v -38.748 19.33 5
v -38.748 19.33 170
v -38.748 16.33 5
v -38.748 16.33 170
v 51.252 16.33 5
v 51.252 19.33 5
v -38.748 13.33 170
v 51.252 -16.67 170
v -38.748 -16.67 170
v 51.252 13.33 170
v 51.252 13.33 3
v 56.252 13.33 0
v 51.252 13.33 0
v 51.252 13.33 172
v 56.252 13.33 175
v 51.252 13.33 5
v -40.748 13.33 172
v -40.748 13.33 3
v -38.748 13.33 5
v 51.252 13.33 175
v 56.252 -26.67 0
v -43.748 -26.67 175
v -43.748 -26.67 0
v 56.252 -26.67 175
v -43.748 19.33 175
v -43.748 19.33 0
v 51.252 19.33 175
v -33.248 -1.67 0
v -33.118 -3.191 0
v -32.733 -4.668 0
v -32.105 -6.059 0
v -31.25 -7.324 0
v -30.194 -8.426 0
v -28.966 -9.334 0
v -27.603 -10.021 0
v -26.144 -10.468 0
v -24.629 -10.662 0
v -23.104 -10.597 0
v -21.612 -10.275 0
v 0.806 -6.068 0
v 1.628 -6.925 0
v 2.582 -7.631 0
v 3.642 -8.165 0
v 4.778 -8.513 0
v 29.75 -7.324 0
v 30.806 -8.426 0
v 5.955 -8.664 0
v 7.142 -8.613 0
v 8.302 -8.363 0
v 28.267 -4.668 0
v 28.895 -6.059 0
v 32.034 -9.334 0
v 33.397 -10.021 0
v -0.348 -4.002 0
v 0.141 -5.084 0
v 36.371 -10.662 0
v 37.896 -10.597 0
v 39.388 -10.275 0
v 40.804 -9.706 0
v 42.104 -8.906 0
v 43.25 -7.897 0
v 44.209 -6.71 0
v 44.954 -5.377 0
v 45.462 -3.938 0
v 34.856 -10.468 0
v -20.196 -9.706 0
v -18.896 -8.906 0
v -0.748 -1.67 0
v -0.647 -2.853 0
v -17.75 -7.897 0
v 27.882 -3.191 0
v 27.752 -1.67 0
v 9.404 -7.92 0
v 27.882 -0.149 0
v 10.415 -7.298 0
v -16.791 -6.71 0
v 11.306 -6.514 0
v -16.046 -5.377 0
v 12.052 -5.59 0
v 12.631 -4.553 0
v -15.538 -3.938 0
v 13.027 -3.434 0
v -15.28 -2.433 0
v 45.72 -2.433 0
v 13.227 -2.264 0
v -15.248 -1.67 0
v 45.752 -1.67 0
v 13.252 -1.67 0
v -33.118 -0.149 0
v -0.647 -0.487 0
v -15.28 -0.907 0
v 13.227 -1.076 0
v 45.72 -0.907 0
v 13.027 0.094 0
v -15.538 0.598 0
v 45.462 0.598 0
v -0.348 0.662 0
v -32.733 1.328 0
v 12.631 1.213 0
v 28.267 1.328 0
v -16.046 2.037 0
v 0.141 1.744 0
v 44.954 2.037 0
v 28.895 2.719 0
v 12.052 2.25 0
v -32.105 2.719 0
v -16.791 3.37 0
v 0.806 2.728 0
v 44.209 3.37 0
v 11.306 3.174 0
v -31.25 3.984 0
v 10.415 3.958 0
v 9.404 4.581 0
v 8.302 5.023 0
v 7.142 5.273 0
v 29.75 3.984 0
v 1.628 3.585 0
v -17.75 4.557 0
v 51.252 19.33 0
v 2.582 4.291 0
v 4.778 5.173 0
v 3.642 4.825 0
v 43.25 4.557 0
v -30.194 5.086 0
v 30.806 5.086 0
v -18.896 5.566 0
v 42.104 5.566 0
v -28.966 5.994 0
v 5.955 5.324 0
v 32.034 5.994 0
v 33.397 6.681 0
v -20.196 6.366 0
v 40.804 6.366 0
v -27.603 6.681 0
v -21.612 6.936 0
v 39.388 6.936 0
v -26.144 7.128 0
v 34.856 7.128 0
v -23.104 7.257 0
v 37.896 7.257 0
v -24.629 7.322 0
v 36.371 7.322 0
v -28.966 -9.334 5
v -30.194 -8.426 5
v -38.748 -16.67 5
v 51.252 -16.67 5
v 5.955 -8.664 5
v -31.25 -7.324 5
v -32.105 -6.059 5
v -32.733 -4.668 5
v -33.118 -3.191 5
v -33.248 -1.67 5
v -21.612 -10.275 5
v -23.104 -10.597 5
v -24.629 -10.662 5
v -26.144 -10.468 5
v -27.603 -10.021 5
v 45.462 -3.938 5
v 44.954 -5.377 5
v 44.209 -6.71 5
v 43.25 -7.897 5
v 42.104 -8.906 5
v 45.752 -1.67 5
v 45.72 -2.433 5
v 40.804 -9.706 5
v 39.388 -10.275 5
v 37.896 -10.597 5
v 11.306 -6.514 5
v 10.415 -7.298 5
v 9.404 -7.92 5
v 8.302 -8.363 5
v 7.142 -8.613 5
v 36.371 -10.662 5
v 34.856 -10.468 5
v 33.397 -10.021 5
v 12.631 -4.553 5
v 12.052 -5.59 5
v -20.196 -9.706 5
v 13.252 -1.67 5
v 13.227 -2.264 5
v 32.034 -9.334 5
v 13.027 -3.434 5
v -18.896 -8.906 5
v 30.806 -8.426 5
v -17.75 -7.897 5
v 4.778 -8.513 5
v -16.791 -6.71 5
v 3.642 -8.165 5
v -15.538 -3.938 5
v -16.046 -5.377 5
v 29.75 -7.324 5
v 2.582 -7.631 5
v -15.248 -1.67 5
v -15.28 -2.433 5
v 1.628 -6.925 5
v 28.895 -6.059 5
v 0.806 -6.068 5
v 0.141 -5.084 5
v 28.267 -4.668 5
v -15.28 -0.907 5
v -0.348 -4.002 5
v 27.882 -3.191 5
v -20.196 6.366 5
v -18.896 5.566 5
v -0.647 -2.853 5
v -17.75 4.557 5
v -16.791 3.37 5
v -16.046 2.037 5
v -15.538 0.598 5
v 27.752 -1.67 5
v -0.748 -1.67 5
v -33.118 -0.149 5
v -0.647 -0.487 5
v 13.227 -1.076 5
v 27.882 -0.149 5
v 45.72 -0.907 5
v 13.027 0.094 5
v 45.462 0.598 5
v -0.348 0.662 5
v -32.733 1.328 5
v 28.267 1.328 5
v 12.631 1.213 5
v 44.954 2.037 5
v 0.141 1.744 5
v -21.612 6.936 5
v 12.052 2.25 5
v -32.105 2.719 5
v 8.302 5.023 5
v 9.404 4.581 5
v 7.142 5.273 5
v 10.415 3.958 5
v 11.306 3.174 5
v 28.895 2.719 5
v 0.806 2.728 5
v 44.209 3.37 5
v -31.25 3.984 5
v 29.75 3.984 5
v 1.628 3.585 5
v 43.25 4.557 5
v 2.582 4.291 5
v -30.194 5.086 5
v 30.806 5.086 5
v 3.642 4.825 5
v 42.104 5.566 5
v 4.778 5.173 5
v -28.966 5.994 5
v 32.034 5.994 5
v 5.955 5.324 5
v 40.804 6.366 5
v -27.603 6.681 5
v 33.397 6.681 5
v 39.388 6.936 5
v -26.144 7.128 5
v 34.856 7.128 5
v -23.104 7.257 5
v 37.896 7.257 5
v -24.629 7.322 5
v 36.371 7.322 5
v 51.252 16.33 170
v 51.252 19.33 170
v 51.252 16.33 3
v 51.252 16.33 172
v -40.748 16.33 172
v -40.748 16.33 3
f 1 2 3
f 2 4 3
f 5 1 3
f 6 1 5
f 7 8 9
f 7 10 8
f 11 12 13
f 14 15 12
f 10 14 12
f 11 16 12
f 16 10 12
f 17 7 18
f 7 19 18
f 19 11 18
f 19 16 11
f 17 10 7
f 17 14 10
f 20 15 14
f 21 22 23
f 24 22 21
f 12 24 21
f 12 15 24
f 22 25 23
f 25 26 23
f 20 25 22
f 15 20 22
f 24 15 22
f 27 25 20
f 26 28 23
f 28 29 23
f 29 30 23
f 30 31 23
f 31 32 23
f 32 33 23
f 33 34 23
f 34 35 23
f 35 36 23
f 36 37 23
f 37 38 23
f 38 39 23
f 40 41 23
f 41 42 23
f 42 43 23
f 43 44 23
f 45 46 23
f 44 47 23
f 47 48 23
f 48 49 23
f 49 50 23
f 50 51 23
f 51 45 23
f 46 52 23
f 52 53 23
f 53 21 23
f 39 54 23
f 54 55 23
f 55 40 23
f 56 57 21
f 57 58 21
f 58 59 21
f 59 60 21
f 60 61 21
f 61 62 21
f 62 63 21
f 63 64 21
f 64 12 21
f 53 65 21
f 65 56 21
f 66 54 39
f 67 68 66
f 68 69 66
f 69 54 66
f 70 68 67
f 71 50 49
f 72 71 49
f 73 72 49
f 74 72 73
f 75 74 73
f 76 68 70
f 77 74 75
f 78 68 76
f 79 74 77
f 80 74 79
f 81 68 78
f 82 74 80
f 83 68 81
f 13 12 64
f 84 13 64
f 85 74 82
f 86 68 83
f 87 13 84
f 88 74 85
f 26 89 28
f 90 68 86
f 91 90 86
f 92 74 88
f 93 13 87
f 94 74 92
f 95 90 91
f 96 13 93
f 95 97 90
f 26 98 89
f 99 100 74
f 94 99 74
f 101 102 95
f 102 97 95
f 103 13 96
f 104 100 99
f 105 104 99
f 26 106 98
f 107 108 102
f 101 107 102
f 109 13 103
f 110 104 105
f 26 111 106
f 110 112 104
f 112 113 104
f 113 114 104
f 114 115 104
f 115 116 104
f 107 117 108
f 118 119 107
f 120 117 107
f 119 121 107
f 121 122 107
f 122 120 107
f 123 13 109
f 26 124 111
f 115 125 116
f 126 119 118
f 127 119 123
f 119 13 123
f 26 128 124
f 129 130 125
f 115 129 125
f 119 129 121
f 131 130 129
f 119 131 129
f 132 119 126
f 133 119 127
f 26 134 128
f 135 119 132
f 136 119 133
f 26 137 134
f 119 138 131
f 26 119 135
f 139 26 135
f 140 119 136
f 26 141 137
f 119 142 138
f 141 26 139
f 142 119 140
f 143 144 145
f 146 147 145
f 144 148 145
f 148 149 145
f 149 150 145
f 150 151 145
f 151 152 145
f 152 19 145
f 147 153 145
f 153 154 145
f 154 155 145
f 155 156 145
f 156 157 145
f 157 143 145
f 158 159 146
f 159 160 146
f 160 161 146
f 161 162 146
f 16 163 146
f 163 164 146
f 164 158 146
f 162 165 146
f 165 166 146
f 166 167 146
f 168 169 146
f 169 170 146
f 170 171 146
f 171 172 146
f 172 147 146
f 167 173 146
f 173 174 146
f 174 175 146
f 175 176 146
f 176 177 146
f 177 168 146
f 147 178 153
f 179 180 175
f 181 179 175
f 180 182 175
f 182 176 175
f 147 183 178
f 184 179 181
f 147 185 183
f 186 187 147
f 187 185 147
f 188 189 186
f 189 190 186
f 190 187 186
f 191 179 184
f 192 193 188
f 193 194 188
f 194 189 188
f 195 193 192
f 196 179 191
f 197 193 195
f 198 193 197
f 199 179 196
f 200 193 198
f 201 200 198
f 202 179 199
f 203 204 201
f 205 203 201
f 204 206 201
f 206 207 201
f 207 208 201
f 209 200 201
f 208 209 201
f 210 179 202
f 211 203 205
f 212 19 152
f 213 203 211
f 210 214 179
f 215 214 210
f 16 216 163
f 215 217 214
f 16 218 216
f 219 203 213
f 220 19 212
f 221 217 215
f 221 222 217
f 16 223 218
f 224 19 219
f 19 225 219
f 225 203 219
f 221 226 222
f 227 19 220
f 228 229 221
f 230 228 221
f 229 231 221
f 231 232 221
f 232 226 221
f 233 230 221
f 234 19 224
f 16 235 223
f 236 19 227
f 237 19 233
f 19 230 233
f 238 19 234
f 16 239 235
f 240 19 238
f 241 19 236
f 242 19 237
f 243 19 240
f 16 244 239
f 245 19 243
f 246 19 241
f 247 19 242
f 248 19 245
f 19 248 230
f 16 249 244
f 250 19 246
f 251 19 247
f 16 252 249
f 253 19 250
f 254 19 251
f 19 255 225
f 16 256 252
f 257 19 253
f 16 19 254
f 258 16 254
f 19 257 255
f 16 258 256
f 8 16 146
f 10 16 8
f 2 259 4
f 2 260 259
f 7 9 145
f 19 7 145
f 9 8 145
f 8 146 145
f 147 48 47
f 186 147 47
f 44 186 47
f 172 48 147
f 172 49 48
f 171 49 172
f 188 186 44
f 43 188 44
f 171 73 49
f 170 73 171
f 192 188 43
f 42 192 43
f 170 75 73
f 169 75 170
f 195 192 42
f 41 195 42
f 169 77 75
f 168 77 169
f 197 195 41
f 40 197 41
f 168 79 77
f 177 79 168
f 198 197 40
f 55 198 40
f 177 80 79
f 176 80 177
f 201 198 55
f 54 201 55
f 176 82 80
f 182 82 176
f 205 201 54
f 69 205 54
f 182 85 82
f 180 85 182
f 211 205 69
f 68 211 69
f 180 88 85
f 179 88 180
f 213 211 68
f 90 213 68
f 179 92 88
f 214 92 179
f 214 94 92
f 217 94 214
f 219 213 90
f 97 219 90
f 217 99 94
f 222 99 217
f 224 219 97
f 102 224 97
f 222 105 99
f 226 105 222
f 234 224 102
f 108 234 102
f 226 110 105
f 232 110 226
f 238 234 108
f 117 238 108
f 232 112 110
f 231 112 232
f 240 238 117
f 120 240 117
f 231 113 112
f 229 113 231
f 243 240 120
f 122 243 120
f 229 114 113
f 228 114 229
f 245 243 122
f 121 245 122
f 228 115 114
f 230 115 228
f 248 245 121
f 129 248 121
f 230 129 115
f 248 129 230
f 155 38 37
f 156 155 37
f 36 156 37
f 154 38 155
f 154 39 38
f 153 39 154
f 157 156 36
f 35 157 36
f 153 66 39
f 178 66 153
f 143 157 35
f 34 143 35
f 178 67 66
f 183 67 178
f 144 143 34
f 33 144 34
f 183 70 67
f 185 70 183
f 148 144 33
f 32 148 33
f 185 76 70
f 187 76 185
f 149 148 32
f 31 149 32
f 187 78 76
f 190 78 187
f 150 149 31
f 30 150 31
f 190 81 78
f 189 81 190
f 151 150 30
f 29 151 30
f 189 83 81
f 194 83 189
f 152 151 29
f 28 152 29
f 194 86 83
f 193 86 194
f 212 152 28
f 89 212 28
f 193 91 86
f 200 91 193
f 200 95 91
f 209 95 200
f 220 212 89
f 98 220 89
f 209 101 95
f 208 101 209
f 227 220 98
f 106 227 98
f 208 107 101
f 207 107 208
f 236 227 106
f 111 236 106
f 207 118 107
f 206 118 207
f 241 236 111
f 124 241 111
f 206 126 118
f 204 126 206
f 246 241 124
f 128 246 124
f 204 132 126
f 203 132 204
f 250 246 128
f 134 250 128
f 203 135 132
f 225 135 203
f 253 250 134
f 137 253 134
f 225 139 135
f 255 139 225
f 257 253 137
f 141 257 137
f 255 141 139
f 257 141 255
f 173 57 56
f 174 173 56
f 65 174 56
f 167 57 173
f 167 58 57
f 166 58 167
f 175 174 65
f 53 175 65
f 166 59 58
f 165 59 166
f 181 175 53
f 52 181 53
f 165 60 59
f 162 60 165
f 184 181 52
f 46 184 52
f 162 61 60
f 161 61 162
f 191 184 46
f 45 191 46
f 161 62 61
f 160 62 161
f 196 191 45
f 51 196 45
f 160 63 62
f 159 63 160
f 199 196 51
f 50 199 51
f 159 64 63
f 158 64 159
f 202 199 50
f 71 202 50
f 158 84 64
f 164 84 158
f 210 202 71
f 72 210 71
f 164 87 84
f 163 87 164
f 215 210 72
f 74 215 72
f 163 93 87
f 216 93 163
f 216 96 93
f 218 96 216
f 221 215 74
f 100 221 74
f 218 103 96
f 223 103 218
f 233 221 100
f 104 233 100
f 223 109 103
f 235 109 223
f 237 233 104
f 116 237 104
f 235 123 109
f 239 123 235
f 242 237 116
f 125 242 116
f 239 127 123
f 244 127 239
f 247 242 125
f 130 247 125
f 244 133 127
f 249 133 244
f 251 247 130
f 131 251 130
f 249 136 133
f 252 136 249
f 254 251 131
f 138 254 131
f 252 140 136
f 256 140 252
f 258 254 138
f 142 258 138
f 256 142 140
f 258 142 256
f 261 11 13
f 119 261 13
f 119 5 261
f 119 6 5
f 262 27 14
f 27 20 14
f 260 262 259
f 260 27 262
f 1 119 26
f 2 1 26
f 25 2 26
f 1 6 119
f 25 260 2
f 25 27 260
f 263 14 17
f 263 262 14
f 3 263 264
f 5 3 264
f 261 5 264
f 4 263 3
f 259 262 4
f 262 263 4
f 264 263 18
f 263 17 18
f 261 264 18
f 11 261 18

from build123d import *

# Parameters (mm, degrees)
SKETCH1_W           = 100
SKETCH1_H           = 40
BOSS_EXTRUDE1_DEPTH = 175
SKETCH2_W           = 90
SKETCH2_H           = 165
CUT_EXTRUDE1_DEPTH  = 30
SKETCH18_R          = 7
SKETCH18_R_2        = 9
CUT_EXTRUDE9_DEPTH  = 10
BOSS_EXTRUDE3_DEPTH = 6
SKETCH27_W          = 2
SKETCH27_H          = 3
CUT_EXTRUDE13_DEPTH = 92
SKETCH28_W          = 2
SKETCH28_H          = 3
CUT_EXTRUDE14_DEPTH = 92
SKETCH29_W          = 165
SKETCH29_H          = 3
CUT_EXTRUDE15_DEPTH = 2


with BuildPart() as part:
    # Sketch1 → Boss-Extrude1 (new body)
    with BuildSketch(Plane.XY):
        with Locations((6.252485089, -6.669980119)):
            Rectangle(SKETCH1_W, SKETCH1_H)
    extrude(amount=BOSS_EXTRUDE1_DEPTH)

    # Sketch2 → Cut-Extrude1 (cut)
    with BuildSketch(Plane(origin=(0, 13.330019881, 0), x_dir=(1, 0, 0), z_dir=(0, 1, 0))):
        with Locations((6.252485089, -87.5)):
            Rectangle(SKETCH2_W, SKETCH2_H)
    extrude(amount=-CUT_EXTRUDE1_DEPTH, mode=Mode.SUBTRACT)

    # Sketch18 → Cut-Extrude9 (cut)
    with BuildSketch(Plane.XY):
        with Locations((6.252485089, -1.669980119)):
            Circle(SKETCH18_R)
        with Locations((36.752485089, -1.669980119)):
            Circle(SKETCH18_R_2)
        with Locations((-24.247514911, -1.669980119)):
            Circle(SKETCH18_R_2)
    extrude(amount=CUT_EXTRUDE9_DEPTH, mode=Mode.SUBTRACT)

    # Sketch26 → Boss-Extrude3 (add)
    with BuildSketch(Plane(origin=(0, 13.330019881, 0), x_dir=(1, 0, 0), z_dir=(0, 1, 0))):
        Polygon((51.252485089, -5), (-38.747514911, -5), (-38.747514911, -170), (51.252485089, -170), (51.252485089, -175), (-43.747514911, -175), (-43.747514911, 0), (51.252485089, 0), align=None)
    extrude(amount=BOSS_EXTRUDE3_DEPTH)

    # Sketch27 → Cut-Extrude13 (cut)
    with BuildSketch(Plane(origin=(51.252485089, 0, 0), x_dir=(0, 0, -1), z_dir=(1, 0, 0))):
        with Locations((-171, 14.830019881)):
            Rectangle(SKETCH27_W, SKETCH27_H)
    extrude(amount=-CUT_EXTRUDE13_DEPTH, mode=Mode.SUBTRACT)

    # Sketch28 → Cut-Extrude14 (cut)
    with BuildSketch(Plane(origin=(51.252485089, 0, 0), x_dir=(0, 0, -1), z_dir=(1, 0, 0))):
        with Locations((-4, 14.830019881)):
            Rectangle(SKETCH28_W, SKETCH28_H)
    extrude(amount=-CUT_EXTRUDE14_DEPTH, mode=Mode.SUBTRACT)

    # Sketch29 → Cut-Extrude15 (cut)
    with BuildSketch(Plane(origin=(-38.747514911, 0, 0), x_dir=(0, 0, -1), z_dir=(1, 0, 0))):
        with Locations((-87.5, 14.830019881)):
            Rectangle(SKETCH29_W, SKETCH29_H)
    extrude(amount=-CUT_EXTRUDE15_DEPTH, mode=Mode.SUBTRACT)


solid = part.part
